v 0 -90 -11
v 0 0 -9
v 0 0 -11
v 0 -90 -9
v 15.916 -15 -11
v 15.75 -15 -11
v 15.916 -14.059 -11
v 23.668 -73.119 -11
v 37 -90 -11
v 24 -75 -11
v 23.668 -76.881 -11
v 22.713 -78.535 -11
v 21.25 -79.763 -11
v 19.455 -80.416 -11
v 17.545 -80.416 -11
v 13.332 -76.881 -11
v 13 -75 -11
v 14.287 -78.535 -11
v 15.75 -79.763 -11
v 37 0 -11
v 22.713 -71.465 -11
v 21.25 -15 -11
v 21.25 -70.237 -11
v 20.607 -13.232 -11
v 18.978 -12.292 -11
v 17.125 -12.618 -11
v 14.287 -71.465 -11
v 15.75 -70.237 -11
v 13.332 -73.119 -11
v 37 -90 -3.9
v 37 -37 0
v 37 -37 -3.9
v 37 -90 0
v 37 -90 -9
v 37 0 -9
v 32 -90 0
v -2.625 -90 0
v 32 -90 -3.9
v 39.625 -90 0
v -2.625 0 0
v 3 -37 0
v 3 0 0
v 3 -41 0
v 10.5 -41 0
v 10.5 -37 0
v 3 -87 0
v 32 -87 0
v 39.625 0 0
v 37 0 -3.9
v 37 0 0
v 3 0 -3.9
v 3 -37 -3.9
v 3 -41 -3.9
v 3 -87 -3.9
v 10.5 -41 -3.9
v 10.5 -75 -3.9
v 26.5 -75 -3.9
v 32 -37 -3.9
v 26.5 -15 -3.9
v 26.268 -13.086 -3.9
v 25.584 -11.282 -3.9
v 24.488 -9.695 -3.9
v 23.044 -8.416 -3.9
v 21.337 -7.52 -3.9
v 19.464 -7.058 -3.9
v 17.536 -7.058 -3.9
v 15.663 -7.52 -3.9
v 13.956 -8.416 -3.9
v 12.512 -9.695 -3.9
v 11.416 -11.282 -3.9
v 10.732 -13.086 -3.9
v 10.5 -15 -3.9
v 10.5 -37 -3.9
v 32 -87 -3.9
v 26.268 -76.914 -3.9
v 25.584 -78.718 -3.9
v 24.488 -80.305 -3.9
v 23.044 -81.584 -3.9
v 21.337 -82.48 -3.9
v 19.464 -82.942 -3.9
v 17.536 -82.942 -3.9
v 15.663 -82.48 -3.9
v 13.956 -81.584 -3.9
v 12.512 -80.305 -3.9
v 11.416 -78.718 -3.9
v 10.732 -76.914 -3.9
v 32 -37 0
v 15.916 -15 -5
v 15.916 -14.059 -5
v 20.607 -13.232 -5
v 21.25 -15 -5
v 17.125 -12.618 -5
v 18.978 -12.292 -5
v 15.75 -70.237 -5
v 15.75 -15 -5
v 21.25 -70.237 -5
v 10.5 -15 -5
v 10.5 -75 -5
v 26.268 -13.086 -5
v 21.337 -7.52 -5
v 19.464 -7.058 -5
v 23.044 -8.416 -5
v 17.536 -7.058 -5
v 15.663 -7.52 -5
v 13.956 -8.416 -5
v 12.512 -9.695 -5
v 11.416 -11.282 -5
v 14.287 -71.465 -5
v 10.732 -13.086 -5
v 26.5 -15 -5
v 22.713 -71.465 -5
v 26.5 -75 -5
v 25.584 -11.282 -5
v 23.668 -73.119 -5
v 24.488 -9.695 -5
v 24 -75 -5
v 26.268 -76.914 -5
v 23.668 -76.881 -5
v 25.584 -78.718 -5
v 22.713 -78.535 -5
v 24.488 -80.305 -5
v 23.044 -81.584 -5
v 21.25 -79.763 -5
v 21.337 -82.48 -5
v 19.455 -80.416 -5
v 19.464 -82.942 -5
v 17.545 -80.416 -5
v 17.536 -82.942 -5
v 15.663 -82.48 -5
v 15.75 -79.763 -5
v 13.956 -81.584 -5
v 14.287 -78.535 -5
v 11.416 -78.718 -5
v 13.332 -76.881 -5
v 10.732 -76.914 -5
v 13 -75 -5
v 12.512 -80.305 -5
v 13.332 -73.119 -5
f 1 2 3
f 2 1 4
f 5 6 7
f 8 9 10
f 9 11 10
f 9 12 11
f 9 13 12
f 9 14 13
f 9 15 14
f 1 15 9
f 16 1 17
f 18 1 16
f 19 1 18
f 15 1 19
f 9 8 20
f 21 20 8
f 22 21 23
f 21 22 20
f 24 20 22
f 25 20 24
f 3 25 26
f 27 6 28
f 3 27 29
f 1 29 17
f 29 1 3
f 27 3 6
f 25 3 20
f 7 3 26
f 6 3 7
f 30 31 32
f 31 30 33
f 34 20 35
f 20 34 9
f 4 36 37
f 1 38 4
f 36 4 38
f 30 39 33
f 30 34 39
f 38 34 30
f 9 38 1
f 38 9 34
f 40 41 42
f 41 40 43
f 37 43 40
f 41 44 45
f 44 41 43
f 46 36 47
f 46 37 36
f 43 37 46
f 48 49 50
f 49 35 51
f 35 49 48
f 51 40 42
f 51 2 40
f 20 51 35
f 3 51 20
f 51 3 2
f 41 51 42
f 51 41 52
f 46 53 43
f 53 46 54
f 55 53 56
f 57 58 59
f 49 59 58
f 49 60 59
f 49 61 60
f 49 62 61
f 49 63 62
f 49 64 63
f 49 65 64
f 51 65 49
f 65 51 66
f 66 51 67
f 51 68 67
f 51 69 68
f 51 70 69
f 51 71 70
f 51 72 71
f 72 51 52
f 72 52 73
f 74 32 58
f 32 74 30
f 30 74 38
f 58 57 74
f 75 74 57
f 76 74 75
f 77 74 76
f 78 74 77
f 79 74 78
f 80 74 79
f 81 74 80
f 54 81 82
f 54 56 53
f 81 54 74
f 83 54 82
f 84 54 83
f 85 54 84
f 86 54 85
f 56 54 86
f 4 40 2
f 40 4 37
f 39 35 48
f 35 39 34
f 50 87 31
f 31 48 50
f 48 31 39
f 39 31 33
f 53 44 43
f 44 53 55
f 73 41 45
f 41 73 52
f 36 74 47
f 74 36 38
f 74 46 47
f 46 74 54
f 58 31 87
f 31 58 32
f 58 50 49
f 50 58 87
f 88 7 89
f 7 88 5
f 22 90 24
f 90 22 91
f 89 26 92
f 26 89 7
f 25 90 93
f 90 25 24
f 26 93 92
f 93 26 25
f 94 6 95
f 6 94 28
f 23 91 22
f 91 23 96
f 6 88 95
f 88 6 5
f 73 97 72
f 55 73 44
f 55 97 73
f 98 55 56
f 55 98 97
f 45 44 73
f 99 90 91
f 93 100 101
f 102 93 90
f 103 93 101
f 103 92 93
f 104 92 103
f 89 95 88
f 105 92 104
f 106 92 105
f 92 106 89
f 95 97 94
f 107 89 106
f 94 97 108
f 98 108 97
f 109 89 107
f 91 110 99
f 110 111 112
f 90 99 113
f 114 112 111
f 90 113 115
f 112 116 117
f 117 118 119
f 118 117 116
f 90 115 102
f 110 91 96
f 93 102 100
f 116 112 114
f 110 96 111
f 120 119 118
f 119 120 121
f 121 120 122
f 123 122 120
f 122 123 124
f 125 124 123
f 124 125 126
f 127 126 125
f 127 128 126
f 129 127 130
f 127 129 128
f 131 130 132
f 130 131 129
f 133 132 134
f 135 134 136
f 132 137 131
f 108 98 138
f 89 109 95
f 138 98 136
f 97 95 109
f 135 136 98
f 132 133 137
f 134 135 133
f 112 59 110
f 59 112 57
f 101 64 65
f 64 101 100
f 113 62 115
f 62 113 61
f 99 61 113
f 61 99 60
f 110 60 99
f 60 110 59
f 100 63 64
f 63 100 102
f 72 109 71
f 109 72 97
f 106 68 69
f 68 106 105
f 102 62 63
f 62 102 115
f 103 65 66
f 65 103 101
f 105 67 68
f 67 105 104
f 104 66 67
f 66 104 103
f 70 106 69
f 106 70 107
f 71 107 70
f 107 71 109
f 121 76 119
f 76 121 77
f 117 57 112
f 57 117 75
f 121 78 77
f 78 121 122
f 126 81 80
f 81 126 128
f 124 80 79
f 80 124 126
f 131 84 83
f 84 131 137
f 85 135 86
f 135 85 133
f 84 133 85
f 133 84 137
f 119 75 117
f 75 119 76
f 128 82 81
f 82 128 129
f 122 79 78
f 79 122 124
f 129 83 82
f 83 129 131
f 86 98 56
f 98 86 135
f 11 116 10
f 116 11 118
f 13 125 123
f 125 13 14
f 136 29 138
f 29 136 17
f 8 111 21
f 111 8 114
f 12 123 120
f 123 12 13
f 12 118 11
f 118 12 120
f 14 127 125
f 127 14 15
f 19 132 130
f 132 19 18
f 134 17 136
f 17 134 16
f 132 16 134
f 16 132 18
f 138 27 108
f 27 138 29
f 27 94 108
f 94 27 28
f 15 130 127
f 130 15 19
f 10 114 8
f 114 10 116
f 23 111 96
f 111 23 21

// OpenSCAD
// A replacement plate for Manfrotto 501PL quick release compatible heads
// by Nirav Patel <http://eclecti.cc>
//
// Available under the CC BY license

channel = 5.5; // Width of the channel in the middle
height = 11; // Height of the plate (>=11 mm recommended)
length = 90; // Length of the plate (90 mm is the stock one)
wall = 3; // Thickness of walls
width = 37.0;   // Width of the main cube structure
channel_offset = width / 2.0;

module tapered() polyhedron(points = [[-2.625,0,0], [0,0,9], [0,0,0], [-2.625,length,0], [0,length,9], [0,length,0]],
        faces = [[0,1,2], [0,4,1], [0,3,4], [0,5,3], [0,2,5], [3,5,4], [2,1,4], [2,4,5]]);

rotate([180,0,0]) // flipped for printability
difference() {
    union() {
        difference() {
            cube([width,length,height]); // the bulk of the box
            translate([3,0,0]) cube([width - 3.0,length,3.9]);      // removes the base area
            // hollow out what we can to make it use less plastic
            //translate([wall,wall,0]) cube([42/2-2*wall-8,length-2*wall, height-wall]);
            //translate([wall+42/2+8,wall,0]) cube([42/2-2*wall-8,length-2*wall, height-wall]);
        }
        // the tapered side bits
        tapered();
        translate([width,0,0]) mirror([1,0,0]) tapered();
        // the stop to keep it from falling out the front
        translate([0,width,0]) cube([11,4,height]);
        translate([0,length-wall,0]) cube([width - 5.0,wall,height]);
        // the triangle piece that the quickrelease interfaces with
        polyhedron(points = [[width,width,0], [width,0,0], [width - 5.0,width,0], [width, width, height], [width, 0, height], [width - 5.0, width, height]],
            faces = [[0,2,1],[0,1,3],[1,4,3],[2,4,1],[2,5,4],[0,3,5],[0,5,2],[5,3,4]]);
    }

    // the channel for the camera mount screw
    translate([channel_offset,15,0]) cylinder(h=height,r=channel/2);
    translate([channel_offset-channel/2,15,0]) cube([channel,length-30,height]);
    translate([channel_offset-8,15,0]) cube([16,length-30,5]);
    translate([channel_offset,15,0]) cylinder(h=5,r=8);
    translate([channel_offset,length-15,0]) cylinder(h=5,r=8);
    translate([channel_offset,length-15,0]) cylinder(h=height, r=channel);
}
